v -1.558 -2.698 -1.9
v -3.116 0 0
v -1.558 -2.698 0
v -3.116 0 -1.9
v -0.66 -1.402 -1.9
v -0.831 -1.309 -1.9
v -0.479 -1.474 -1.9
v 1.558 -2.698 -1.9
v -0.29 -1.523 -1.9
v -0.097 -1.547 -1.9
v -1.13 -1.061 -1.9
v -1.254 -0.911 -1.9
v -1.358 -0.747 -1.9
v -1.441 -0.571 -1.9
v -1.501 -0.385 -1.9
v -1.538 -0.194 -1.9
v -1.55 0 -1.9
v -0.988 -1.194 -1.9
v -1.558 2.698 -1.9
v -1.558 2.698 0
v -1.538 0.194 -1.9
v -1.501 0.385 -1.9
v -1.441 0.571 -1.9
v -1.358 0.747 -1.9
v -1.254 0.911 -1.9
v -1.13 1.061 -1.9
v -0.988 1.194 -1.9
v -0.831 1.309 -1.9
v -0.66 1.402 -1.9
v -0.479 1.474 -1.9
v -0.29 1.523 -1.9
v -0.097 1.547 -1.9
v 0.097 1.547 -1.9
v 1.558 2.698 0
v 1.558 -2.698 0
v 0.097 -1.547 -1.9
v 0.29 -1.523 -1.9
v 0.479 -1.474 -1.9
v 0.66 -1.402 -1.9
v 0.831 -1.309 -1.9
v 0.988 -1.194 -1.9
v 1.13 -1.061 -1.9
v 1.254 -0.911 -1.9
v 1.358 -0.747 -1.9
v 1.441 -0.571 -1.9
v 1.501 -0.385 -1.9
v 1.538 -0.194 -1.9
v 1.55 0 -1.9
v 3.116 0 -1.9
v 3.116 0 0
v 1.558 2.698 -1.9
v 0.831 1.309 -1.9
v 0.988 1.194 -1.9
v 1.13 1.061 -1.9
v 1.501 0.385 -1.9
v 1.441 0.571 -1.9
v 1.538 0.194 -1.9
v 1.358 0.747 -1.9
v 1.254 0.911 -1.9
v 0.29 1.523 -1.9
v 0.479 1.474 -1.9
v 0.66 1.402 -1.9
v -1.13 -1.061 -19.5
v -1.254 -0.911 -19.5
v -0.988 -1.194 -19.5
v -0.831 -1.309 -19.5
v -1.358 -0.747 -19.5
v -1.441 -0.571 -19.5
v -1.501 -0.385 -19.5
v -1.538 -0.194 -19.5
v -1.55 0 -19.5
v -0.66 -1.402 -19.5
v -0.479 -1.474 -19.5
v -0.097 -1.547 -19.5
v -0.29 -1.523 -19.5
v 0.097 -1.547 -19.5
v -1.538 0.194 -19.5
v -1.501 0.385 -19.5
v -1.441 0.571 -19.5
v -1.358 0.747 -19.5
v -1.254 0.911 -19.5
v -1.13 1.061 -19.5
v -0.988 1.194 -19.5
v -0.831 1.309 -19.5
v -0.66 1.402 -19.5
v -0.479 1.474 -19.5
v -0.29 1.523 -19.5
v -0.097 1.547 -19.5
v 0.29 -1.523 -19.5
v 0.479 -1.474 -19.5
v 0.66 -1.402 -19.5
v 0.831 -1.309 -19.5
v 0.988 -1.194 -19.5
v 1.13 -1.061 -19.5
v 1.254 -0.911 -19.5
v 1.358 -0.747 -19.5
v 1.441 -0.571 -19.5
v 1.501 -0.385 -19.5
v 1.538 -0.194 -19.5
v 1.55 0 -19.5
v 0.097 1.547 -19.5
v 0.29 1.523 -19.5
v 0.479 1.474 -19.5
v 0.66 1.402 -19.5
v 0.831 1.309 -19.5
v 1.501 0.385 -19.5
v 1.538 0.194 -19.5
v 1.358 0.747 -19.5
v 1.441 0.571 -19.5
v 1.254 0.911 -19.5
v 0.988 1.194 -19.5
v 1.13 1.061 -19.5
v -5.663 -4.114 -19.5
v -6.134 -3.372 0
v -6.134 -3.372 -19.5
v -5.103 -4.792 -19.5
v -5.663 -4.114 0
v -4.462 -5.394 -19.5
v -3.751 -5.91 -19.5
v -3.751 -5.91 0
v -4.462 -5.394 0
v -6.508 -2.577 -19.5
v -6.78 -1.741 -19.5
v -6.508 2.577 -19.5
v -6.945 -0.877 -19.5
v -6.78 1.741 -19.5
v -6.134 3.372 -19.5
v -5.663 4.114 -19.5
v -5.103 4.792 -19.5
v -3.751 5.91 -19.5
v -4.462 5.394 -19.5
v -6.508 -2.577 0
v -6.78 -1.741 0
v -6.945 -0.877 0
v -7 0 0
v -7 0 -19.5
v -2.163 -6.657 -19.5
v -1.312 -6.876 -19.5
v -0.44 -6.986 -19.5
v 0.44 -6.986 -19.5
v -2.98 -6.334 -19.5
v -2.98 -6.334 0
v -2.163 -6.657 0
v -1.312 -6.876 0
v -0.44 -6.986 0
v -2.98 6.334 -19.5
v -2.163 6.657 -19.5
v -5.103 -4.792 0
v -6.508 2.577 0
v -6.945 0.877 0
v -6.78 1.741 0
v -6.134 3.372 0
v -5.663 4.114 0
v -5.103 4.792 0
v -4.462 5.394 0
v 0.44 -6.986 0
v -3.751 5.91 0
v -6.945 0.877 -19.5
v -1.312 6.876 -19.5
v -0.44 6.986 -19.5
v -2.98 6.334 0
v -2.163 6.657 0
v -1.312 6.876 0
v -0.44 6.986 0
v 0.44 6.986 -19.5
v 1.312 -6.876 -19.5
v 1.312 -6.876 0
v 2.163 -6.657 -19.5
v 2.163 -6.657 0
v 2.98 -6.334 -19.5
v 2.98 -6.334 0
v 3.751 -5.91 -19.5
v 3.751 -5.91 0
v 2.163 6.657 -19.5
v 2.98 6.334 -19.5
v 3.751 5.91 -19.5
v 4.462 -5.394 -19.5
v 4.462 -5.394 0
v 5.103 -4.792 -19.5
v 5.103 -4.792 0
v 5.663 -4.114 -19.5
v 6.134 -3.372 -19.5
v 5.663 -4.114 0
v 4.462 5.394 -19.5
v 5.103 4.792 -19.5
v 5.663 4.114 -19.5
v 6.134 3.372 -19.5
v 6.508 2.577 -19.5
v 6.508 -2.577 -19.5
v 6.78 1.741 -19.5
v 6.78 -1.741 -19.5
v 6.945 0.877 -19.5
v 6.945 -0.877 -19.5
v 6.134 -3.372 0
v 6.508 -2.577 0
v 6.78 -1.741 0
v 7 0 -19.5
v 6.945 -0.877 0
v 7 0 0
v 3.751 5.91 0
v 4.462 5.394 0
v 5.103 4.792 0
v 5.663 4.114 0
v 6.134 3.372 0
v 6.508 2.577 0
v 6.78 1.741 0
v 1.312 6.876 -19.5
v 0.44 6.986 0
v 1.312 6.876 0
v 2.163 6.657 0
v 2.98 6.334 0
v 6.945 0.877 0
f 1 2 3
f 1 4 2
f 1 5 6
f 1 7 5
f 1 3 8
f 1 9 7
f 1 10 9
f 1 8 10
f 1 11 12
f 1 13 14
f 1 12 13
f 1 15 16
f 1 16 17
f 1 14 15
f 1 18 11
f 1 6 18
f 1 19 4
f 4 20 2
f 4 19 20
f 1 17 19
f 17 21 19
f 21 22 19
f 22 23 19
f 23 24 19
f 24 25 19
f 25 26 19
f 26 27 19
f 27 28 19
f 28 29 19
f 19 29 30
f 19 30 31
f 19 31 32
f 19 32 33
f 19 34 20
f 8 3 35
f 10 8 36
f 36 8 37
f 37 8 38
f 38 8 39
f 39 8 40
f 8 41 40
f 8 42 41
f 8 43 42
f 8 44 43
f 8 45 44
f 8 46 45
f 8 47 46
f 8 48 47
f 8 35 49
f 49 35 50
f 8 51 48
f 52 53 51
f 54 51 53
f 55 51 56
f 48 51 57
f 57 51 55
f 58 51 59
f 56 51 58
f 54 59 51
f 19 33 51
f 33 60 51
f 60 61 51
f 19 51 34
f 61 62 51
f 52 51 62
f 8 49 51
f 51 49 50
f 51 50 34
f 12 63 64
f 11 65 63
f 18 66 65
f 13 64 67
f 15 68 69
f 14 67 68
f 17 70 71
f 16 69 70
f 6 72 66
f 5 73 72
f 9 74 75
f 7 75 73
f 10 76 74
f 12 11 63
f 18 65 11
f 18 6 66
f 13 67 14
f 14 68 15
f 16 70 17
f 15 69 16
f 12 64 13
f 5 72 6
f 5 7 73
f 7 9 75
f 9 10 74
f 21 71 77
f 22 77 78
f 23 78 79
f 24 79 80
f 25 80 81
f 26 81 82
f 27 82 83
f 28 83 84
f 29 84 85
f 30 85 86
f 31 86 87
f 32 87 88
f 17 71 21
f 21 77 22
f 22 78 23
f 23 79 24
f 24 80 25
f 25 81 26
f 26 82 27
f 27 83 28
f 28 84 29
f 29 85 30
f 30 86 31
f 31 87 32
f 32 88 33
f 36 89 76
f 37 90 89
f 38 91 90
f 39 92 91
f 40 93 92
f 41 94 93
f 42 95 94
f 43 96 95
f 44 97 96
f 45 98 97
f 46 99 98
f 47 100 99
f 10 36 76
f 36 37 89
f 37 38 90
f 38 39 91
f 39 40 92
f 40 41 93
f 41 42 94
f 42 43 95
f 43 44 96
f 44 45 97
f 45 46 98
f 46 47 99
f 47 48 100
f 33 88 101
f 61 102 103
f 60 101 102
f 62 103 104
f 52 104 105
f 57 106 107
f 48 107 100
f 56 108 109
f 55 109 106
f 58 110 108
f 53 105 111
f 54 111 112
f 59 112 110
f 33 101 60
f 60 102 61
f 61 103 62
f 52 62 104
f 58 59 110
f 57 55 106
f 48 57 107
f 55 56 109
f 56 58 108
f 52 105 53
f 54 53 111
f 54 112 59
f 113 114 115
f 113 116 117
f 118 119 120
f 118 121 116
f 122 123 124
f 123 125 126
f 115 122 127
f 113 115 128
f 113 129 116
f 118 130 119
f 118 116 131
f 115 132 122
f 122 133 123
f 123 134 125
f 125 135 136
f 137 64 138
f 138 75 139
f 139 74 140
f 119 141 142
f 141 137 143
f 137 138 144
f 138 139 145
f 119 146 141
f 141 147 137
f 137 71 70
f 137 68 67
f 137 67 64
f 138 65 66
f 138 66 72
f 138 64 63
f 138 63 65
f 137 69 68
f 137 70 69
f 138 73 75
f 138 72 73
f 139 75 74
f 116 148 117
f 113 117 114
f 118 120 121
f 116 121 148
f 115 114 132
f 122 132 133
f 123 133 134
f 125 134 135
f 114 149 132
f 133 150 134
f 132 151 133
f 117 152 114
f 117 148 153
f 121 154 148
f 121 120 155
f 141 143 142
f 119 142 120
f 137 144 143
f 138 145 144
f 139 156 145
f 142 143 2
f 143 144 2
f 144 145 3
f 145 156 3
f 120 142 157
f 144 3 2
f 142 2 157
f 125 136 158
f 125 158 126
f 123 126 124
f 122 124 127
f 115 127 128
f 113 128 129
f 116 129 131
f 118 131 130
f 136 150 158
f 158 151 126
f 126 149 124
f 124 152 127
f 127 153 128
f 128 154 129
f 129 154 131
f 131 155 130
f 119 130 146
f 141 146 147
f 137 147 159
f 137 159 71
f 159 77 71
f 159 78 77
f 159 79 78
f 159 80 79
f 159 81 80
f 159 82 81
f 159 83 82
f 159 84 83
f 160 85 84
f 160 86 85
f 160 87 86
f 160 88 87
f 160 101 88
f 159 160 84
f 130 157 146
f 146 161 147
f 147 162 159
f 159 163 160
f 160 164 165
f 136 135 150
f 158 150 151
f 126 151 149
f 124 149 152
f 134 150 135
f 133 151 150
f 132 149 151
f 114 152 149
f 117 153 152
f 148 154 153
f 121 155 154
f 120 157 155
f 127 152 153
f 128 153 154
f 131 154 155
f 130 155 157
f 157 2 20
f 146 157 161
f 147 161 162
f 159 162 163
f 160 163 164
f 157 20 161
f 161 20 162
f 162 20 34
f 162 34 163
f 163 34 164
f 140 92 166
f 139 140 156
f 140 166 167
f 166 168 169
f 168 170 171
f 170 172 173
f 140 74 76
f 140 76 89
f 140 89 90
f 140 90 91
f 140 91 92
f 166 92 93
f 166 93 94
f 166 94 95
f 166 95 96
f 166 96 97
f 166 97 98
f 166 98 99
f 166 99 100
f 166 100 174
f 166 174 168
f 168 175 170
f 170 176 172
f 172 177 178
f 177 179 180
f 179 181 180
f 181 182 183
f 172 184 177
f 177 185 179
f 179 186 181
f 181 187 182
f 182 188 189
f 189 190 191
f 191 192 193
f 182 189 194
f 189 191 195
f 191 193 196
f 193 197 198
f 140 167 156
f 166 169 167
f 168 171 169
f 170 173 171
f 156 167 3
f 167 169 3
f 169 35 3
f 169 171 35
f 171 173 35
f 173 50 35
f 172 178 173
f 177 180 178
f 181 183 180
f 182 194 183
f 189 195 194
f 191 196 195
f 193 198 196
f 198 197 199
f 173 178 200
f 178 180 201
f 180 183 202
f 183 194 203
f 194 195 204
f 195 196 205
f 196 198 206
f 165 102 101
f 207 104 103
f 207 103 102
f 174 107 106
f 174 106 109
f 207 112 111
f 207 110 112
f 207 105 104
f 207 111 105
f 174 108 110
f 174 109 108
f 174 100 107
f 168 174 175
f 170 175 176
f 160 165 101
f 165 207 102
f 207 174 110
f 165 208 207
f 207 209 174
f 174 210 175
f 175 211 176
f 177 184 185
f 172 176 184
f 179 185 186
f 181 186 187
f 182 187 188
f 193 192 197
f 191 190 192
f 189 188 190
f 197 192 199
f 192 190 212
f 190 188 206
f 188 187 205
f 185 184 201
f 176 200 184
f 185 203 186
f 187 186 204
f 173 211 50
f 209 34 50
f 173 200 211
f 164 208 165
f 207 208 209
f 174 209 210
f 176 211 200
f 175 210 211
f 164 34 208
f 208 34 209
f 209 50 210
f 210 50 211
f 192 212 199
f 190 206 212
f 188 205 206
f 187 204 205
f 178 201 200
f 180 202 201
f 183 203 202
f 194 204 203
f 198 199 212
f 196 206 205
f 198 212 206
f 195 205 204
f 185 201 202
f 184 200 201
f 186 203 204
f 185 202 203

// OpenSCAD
$fn = 50;


difference() {
	union() {
		translate(v = [0, 0, -19.5000000000]) {
			cylinder(h = 19.5000000000, r = 7.0000000000);
		}
	}
	union() {
		translate(v = [0, 0, 0]) {
			rotate(a = [0, 0, 0]) {
				difference() {
					union() {
						translate(v = [0, 0, -1.9000000000]) {
							linear_extrude(height = 1.9000000000) {
								polygon(points = [[3.1158000000, 0.0000000000], [1.5579000000, 2.6983619531], [-1.5579000000, 2.6983619531], [-3.1158000000, 0.0000000000], [-1.5579000000, -2.6983619531], [1.5579000000, -2.6983619531]]);
							}
						}
					}
					union();
				}
			}
		}
		#translate(v = [0, 0, -100.0000000000]) {
			cylinder(h = 200, r = 1.5500000000);
		}
	}
}
